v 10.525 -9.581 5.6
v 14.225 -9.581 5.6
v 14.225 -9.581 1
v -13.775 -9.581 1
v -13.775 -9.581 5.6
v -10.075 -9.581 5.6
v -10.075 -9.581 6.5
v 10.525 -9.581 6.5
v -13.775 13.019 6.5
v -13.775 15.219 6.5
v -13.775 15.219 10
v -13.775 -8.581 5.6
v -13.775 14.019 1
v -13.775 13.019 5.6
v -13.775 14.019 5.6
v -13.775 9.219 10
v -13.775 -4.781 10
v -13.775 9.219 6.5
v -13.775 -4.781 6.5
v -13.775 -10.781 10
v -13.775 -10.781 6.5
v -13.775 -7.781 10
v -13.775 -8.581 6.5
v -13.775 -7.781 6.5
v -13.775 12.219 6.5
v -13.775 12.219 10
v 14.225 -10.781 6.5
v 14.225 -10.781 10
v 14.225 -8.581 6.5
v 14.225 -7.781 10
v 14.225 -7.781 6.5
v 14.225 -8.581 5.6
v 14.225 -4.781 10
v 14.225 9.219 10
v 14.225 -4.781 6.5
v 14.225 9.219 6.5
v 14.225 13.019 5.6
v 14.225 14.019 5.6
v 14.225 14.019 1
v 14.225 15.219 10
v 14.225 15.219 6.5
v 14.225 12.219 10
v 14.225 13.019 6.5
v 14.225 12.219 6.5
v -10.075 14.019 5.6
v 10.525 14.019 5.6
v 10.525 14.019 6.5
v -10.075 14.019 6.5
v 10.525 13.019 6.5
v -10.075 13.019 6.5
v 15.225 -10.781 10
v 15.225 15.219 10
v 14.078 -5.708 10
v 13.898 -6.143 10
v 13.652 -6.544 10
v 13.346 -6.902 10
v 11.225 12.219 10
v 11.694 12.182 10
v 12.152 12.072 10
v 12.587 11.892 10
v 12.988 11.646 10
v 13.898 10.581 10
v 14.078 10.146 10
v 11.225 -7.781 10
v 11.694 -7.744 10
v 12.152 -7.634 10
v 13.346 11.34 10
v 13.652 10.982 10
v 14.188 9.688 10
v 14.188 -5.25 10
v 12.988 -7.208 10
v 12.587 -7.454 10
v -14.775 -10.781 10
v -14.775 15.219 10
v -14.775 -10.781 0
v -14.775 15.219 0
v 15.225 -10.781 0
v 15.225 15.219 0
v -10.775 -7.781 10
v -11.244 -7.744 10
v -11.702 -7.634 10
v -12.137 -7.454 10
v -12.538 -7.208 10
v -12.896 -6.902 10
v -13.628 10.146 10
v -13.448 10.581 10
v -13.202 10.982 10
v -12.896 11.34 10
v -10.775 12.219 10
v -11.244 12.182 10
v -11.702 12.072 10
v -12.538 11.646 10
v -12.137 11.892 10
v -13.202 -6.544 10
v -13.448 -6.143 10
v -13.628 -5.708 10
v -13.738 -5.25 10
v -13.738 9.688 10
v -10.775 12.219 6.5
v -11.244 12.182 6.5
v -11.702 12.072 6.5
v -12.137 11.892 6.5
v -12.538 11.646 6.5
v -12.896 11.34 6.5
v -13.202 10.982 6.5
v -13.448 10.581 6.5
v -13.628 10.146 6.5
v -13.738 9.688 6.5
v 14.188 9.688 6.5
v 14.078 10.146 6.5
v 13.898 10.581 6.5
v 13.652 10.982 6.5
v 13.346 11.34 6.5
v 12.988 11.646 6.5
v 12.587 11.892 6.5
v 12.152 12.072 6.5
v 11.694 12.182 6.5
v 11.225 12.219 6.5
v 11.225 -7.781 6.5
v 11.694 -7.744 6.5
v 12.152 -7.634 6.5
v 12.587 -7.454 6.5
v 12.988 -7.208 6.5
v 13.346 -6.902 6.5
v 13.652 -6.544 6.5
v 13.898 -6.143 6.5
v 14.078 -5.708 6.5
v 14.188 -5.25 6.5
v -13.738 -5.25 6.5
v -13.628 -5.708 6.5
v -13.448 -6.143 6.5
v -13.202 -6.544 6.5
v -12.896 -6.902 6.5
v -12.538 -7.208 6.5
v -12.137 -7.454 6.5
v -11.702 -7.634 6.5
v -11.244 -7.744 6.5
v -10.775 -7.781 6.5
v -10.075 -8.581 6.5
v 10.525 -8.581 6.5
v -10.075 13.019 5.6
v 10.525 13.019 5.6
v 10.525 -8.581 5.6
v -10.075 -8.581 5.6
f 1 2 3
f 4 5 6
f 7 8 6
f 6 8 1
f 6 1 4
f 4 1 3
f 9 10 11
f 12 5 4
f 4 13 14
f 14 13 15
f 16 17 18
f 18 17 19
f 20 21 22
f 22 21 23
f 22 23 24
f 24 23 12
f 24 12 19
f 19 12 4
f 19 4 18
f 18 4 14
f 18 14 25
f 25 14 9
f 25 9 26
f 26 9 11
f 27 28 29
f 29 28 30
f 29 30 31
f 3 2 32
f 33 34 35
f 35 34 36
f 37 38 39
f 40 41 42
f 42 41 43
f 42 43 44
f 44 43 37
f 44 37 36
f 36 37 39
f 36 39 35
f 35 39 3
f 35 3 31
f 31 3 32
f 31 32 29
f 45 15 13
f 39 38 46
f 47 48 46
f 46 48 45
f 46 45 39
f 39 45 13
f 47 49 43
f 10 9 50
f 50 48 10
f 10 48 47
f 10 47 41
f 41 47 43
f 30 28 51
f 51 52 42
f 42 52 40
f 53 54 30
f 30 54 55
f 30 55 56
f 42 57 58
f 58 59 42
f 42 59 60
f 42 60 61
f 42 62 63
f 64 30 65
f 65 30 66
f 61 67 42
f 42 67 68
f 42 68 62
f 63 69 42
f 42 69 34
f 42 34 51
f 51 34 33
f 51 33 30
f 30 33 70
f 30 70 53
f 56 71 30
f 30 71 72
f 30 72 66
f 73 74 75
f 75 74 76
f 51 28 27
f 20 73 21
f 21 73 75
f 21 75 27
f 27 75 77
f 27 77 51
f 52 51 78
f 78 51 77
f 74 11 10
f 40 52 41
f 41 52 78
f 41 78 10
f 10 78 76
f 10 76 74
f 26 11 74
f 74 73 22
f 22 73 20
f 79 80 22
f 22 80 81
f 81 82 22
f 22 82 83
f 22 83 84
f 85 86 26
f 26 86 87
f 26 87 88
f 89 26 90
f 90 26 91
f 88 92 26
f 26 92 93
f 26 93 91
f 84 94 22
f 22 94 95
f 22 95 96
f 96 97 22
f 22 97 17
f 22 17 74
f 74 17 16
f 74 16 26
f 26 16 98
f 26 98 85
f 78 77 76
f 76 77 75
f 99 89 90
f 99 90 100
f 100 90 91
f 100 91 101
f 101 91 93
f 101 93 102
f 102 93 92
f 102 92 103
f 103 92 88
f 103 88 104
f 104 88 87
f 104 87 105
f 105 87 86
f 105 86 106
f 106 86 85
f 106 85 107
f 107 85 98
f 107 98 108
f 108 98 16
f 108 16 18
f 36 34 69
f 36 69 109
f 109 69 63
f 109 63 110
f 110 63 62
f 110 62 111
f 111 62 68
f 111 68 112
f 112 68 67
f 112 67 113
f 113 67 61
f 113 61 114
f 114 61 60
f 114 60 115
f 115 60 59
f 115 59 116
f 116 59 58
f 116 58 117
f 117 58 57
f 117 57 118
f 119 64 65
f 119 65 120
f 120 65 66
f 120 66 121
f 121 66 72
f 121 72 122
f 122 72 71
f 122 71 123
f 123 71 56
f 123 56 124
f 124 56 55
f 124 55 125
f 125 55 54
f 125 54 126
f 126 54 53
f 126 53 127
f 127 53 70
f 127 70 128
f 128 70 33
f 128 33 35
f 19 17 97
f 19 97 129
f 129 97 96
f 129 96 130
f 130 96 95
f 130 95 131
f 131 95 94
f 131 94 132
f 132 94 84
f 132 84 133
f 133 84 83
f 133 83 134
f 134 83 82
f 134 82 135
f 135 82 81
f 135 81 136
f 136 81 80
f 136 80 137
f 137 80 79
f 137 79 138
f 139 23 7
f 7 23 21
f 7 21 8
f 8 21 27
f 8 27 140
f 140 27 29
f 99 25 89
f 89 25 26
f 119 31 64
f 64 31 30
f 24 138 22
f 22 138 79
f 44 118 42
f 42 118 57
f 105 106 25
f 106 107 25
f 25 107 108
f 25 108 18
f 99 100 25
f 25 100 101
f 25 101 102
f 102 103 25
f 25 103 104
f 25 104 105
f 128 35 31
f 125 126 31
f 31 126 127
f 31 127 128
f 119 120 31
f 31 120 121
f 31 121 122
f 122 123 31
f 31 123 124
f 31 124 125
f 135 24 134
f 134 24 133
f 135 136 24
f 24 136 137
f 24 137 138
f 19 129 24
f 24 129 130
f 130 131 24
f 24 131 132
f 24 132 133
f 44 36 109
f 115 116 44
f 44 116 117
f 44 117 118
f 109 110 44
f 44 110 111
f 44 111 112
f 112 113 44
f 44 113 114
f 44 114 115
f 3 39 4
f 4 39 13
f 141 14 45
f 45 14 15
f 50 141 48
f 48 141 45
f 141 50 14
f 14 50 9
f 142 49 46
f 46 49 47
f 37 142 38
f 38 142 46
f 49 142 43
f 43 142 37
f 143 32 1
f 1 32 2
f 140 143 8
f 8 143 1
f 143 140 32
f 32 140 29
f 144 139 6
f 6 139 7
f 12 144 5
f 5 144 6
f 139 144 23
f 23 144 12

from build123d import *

# Parameters (mm, degrees)
SKETCH1_W           = 30
SKETCH1_H           = 26
BOSS_EXTRUDE1_DEPTH = 10
CUT_EXTRUDE2_DEPTH  = 3.5
SKETCH3_W           = 3
SKETCH3_H           = 3
CUT_EXTRUDE3_DEPTH  = 3.5
SKETCH4_W           = 28
SKETCH4_H           = 23.6
CUT_EXTRUDE4_DEPTH  = 5.5
SKETCH5_W           = 3.7
SKETCH5_H           = 0.9
BOSS_EXTRUDE2_DEPTH = 1
SKETCH6_W           = 3.7
SKETCH6_H           = 0.9
BOSS_EXTRUDE3_DEPTH = 1


with BuildPart() as part:
    # Sketch1 → Boss-Extrude1 (new body)
    with BuildSketch(Plane.XY):
        with Locations((0.224911006, 2.218978102)):
            Rectangle(SKETCH1_W, SKETCH1_H)
    extrude(amount=BOSS_EXTRUDE1_DEPTH)

    # Sketch2 → Cut-Extrude2 (cut)
    with BuildSketch(Plane.XY.offset(10)):
        with BuildLine():
            Line((-13.775088994, 9.218978102), (-13.775088994, -4.781021898))
            ThreePointArc((-13.775088994, -4.781021898), (-12.896409337, -6.902342241), (-10.775088994, -7.781021898))
            Line((-10.775088994, -7.781021898), (-10.775088994, -10.781021898))
            Line((-10.775088994, -10.781021898), (11.224911006, -10.781021898))
            Line((11.224911006, -10.781021898), (11.224911006, -7.781021898))
            ThreePointArc((11.224911006, -7.781021898), (13.34623135, -6.902342241), (14.224911006, -4.781021898))
            Line((14.224911006, -4.781021898), (14.224911006, 9.218978102))
            ThreePointArc((14.224911006, 9.218978102), (13.34623135, 11.340298446), (11.224911006, 12.218978102))
            Line((11.224911006, 12.218978102), (11.224911006, 15.218978102))
            Line((11.224911006, 15.218978102), (-10.775088994, 15.218978102))
            Line((-10.775088994, 15.218978102), (-10.775088994, 12.218978102))
            ThreePointArc((-10.775088994, 12.218978102), (-12.896409337, 11.340298446), (-13.775088994, 9.218978102))
        make_face()
    extrude(amount=-CUT_EXTRUDE2_DEPTH, mode=Mode.SUBTRACT)

    # Sketch3 → Cut-Extrude3 (cut)
    with BuildSketch(Plane.XY.offset(10)):
        with Locations((-12.275088994, 13.718978102)):
            Rectangle(SKETCH3_W, SKETCH3_H)
        with Locations((12.724911006, -9.281021898)):
            Rectangle(SKETCH3_W, SKETCH3_H)
        with Locations((-12.275088994, -9.281021898)):
            Rectangle(SKETCH3_W, SKETCH3_H)
        with Locations((12.724911006, 13.718978102)):
            Rectangle(SKETCH3_W, SKETCH3_H)
    extrude(amount=-CUT_EXTRUDE3_DEPTH, mode=Mode.SUBTRACT)

    # Sketch4 → Cut-Extrude4 (cut)
    with BuildSketch(Plane.XY.offset(6.5)):
        with Locations((0.224911006, 2.218978102)):
            Rectangle(SKETCH4_W, SKETCH4_H)
    extrude(amount=-CUT_EXTRUDE4_DEPTH, mode=Mode.SUBTRACT)

    # Sketch5 → Boss-Extrude2 (add)
    with BuildSketch(Plane(origin=(0, 14.018978102, 0), x_dir=(-1, 0, 0), z_dir=(0, -1, 0))):
        with Locations((11.925088994, -6.05)):
            Rectangle(SKETCH5_W, SKETCH5_H)
        with Locations((-12.374911006, -6.05)):
            Rectangle(SKETCH5_W, SKETCH5_H)
    extrude(amount=BOSS_EXTRUDE2_DEPTH)

    # Sketch6 → Boss-Extrude3 (add)
    with BuildSketch(Plane(origin=(0, -9.581021898, 0), x_dir=(1, 0, 0), z_dir=(0, 1, 0))):
        with Locations((12.374911006, -6.05)):
            Rectangle(SKETCH6_W, SKETCH6_H)
        with Locations((-11.925088994, -6.05)):
            Rectangle(SKETCH6_W, SKETCH6_H)
    extrude(amount=BOSS_EXTRUDE3_DEPTH)


solid = part.part
